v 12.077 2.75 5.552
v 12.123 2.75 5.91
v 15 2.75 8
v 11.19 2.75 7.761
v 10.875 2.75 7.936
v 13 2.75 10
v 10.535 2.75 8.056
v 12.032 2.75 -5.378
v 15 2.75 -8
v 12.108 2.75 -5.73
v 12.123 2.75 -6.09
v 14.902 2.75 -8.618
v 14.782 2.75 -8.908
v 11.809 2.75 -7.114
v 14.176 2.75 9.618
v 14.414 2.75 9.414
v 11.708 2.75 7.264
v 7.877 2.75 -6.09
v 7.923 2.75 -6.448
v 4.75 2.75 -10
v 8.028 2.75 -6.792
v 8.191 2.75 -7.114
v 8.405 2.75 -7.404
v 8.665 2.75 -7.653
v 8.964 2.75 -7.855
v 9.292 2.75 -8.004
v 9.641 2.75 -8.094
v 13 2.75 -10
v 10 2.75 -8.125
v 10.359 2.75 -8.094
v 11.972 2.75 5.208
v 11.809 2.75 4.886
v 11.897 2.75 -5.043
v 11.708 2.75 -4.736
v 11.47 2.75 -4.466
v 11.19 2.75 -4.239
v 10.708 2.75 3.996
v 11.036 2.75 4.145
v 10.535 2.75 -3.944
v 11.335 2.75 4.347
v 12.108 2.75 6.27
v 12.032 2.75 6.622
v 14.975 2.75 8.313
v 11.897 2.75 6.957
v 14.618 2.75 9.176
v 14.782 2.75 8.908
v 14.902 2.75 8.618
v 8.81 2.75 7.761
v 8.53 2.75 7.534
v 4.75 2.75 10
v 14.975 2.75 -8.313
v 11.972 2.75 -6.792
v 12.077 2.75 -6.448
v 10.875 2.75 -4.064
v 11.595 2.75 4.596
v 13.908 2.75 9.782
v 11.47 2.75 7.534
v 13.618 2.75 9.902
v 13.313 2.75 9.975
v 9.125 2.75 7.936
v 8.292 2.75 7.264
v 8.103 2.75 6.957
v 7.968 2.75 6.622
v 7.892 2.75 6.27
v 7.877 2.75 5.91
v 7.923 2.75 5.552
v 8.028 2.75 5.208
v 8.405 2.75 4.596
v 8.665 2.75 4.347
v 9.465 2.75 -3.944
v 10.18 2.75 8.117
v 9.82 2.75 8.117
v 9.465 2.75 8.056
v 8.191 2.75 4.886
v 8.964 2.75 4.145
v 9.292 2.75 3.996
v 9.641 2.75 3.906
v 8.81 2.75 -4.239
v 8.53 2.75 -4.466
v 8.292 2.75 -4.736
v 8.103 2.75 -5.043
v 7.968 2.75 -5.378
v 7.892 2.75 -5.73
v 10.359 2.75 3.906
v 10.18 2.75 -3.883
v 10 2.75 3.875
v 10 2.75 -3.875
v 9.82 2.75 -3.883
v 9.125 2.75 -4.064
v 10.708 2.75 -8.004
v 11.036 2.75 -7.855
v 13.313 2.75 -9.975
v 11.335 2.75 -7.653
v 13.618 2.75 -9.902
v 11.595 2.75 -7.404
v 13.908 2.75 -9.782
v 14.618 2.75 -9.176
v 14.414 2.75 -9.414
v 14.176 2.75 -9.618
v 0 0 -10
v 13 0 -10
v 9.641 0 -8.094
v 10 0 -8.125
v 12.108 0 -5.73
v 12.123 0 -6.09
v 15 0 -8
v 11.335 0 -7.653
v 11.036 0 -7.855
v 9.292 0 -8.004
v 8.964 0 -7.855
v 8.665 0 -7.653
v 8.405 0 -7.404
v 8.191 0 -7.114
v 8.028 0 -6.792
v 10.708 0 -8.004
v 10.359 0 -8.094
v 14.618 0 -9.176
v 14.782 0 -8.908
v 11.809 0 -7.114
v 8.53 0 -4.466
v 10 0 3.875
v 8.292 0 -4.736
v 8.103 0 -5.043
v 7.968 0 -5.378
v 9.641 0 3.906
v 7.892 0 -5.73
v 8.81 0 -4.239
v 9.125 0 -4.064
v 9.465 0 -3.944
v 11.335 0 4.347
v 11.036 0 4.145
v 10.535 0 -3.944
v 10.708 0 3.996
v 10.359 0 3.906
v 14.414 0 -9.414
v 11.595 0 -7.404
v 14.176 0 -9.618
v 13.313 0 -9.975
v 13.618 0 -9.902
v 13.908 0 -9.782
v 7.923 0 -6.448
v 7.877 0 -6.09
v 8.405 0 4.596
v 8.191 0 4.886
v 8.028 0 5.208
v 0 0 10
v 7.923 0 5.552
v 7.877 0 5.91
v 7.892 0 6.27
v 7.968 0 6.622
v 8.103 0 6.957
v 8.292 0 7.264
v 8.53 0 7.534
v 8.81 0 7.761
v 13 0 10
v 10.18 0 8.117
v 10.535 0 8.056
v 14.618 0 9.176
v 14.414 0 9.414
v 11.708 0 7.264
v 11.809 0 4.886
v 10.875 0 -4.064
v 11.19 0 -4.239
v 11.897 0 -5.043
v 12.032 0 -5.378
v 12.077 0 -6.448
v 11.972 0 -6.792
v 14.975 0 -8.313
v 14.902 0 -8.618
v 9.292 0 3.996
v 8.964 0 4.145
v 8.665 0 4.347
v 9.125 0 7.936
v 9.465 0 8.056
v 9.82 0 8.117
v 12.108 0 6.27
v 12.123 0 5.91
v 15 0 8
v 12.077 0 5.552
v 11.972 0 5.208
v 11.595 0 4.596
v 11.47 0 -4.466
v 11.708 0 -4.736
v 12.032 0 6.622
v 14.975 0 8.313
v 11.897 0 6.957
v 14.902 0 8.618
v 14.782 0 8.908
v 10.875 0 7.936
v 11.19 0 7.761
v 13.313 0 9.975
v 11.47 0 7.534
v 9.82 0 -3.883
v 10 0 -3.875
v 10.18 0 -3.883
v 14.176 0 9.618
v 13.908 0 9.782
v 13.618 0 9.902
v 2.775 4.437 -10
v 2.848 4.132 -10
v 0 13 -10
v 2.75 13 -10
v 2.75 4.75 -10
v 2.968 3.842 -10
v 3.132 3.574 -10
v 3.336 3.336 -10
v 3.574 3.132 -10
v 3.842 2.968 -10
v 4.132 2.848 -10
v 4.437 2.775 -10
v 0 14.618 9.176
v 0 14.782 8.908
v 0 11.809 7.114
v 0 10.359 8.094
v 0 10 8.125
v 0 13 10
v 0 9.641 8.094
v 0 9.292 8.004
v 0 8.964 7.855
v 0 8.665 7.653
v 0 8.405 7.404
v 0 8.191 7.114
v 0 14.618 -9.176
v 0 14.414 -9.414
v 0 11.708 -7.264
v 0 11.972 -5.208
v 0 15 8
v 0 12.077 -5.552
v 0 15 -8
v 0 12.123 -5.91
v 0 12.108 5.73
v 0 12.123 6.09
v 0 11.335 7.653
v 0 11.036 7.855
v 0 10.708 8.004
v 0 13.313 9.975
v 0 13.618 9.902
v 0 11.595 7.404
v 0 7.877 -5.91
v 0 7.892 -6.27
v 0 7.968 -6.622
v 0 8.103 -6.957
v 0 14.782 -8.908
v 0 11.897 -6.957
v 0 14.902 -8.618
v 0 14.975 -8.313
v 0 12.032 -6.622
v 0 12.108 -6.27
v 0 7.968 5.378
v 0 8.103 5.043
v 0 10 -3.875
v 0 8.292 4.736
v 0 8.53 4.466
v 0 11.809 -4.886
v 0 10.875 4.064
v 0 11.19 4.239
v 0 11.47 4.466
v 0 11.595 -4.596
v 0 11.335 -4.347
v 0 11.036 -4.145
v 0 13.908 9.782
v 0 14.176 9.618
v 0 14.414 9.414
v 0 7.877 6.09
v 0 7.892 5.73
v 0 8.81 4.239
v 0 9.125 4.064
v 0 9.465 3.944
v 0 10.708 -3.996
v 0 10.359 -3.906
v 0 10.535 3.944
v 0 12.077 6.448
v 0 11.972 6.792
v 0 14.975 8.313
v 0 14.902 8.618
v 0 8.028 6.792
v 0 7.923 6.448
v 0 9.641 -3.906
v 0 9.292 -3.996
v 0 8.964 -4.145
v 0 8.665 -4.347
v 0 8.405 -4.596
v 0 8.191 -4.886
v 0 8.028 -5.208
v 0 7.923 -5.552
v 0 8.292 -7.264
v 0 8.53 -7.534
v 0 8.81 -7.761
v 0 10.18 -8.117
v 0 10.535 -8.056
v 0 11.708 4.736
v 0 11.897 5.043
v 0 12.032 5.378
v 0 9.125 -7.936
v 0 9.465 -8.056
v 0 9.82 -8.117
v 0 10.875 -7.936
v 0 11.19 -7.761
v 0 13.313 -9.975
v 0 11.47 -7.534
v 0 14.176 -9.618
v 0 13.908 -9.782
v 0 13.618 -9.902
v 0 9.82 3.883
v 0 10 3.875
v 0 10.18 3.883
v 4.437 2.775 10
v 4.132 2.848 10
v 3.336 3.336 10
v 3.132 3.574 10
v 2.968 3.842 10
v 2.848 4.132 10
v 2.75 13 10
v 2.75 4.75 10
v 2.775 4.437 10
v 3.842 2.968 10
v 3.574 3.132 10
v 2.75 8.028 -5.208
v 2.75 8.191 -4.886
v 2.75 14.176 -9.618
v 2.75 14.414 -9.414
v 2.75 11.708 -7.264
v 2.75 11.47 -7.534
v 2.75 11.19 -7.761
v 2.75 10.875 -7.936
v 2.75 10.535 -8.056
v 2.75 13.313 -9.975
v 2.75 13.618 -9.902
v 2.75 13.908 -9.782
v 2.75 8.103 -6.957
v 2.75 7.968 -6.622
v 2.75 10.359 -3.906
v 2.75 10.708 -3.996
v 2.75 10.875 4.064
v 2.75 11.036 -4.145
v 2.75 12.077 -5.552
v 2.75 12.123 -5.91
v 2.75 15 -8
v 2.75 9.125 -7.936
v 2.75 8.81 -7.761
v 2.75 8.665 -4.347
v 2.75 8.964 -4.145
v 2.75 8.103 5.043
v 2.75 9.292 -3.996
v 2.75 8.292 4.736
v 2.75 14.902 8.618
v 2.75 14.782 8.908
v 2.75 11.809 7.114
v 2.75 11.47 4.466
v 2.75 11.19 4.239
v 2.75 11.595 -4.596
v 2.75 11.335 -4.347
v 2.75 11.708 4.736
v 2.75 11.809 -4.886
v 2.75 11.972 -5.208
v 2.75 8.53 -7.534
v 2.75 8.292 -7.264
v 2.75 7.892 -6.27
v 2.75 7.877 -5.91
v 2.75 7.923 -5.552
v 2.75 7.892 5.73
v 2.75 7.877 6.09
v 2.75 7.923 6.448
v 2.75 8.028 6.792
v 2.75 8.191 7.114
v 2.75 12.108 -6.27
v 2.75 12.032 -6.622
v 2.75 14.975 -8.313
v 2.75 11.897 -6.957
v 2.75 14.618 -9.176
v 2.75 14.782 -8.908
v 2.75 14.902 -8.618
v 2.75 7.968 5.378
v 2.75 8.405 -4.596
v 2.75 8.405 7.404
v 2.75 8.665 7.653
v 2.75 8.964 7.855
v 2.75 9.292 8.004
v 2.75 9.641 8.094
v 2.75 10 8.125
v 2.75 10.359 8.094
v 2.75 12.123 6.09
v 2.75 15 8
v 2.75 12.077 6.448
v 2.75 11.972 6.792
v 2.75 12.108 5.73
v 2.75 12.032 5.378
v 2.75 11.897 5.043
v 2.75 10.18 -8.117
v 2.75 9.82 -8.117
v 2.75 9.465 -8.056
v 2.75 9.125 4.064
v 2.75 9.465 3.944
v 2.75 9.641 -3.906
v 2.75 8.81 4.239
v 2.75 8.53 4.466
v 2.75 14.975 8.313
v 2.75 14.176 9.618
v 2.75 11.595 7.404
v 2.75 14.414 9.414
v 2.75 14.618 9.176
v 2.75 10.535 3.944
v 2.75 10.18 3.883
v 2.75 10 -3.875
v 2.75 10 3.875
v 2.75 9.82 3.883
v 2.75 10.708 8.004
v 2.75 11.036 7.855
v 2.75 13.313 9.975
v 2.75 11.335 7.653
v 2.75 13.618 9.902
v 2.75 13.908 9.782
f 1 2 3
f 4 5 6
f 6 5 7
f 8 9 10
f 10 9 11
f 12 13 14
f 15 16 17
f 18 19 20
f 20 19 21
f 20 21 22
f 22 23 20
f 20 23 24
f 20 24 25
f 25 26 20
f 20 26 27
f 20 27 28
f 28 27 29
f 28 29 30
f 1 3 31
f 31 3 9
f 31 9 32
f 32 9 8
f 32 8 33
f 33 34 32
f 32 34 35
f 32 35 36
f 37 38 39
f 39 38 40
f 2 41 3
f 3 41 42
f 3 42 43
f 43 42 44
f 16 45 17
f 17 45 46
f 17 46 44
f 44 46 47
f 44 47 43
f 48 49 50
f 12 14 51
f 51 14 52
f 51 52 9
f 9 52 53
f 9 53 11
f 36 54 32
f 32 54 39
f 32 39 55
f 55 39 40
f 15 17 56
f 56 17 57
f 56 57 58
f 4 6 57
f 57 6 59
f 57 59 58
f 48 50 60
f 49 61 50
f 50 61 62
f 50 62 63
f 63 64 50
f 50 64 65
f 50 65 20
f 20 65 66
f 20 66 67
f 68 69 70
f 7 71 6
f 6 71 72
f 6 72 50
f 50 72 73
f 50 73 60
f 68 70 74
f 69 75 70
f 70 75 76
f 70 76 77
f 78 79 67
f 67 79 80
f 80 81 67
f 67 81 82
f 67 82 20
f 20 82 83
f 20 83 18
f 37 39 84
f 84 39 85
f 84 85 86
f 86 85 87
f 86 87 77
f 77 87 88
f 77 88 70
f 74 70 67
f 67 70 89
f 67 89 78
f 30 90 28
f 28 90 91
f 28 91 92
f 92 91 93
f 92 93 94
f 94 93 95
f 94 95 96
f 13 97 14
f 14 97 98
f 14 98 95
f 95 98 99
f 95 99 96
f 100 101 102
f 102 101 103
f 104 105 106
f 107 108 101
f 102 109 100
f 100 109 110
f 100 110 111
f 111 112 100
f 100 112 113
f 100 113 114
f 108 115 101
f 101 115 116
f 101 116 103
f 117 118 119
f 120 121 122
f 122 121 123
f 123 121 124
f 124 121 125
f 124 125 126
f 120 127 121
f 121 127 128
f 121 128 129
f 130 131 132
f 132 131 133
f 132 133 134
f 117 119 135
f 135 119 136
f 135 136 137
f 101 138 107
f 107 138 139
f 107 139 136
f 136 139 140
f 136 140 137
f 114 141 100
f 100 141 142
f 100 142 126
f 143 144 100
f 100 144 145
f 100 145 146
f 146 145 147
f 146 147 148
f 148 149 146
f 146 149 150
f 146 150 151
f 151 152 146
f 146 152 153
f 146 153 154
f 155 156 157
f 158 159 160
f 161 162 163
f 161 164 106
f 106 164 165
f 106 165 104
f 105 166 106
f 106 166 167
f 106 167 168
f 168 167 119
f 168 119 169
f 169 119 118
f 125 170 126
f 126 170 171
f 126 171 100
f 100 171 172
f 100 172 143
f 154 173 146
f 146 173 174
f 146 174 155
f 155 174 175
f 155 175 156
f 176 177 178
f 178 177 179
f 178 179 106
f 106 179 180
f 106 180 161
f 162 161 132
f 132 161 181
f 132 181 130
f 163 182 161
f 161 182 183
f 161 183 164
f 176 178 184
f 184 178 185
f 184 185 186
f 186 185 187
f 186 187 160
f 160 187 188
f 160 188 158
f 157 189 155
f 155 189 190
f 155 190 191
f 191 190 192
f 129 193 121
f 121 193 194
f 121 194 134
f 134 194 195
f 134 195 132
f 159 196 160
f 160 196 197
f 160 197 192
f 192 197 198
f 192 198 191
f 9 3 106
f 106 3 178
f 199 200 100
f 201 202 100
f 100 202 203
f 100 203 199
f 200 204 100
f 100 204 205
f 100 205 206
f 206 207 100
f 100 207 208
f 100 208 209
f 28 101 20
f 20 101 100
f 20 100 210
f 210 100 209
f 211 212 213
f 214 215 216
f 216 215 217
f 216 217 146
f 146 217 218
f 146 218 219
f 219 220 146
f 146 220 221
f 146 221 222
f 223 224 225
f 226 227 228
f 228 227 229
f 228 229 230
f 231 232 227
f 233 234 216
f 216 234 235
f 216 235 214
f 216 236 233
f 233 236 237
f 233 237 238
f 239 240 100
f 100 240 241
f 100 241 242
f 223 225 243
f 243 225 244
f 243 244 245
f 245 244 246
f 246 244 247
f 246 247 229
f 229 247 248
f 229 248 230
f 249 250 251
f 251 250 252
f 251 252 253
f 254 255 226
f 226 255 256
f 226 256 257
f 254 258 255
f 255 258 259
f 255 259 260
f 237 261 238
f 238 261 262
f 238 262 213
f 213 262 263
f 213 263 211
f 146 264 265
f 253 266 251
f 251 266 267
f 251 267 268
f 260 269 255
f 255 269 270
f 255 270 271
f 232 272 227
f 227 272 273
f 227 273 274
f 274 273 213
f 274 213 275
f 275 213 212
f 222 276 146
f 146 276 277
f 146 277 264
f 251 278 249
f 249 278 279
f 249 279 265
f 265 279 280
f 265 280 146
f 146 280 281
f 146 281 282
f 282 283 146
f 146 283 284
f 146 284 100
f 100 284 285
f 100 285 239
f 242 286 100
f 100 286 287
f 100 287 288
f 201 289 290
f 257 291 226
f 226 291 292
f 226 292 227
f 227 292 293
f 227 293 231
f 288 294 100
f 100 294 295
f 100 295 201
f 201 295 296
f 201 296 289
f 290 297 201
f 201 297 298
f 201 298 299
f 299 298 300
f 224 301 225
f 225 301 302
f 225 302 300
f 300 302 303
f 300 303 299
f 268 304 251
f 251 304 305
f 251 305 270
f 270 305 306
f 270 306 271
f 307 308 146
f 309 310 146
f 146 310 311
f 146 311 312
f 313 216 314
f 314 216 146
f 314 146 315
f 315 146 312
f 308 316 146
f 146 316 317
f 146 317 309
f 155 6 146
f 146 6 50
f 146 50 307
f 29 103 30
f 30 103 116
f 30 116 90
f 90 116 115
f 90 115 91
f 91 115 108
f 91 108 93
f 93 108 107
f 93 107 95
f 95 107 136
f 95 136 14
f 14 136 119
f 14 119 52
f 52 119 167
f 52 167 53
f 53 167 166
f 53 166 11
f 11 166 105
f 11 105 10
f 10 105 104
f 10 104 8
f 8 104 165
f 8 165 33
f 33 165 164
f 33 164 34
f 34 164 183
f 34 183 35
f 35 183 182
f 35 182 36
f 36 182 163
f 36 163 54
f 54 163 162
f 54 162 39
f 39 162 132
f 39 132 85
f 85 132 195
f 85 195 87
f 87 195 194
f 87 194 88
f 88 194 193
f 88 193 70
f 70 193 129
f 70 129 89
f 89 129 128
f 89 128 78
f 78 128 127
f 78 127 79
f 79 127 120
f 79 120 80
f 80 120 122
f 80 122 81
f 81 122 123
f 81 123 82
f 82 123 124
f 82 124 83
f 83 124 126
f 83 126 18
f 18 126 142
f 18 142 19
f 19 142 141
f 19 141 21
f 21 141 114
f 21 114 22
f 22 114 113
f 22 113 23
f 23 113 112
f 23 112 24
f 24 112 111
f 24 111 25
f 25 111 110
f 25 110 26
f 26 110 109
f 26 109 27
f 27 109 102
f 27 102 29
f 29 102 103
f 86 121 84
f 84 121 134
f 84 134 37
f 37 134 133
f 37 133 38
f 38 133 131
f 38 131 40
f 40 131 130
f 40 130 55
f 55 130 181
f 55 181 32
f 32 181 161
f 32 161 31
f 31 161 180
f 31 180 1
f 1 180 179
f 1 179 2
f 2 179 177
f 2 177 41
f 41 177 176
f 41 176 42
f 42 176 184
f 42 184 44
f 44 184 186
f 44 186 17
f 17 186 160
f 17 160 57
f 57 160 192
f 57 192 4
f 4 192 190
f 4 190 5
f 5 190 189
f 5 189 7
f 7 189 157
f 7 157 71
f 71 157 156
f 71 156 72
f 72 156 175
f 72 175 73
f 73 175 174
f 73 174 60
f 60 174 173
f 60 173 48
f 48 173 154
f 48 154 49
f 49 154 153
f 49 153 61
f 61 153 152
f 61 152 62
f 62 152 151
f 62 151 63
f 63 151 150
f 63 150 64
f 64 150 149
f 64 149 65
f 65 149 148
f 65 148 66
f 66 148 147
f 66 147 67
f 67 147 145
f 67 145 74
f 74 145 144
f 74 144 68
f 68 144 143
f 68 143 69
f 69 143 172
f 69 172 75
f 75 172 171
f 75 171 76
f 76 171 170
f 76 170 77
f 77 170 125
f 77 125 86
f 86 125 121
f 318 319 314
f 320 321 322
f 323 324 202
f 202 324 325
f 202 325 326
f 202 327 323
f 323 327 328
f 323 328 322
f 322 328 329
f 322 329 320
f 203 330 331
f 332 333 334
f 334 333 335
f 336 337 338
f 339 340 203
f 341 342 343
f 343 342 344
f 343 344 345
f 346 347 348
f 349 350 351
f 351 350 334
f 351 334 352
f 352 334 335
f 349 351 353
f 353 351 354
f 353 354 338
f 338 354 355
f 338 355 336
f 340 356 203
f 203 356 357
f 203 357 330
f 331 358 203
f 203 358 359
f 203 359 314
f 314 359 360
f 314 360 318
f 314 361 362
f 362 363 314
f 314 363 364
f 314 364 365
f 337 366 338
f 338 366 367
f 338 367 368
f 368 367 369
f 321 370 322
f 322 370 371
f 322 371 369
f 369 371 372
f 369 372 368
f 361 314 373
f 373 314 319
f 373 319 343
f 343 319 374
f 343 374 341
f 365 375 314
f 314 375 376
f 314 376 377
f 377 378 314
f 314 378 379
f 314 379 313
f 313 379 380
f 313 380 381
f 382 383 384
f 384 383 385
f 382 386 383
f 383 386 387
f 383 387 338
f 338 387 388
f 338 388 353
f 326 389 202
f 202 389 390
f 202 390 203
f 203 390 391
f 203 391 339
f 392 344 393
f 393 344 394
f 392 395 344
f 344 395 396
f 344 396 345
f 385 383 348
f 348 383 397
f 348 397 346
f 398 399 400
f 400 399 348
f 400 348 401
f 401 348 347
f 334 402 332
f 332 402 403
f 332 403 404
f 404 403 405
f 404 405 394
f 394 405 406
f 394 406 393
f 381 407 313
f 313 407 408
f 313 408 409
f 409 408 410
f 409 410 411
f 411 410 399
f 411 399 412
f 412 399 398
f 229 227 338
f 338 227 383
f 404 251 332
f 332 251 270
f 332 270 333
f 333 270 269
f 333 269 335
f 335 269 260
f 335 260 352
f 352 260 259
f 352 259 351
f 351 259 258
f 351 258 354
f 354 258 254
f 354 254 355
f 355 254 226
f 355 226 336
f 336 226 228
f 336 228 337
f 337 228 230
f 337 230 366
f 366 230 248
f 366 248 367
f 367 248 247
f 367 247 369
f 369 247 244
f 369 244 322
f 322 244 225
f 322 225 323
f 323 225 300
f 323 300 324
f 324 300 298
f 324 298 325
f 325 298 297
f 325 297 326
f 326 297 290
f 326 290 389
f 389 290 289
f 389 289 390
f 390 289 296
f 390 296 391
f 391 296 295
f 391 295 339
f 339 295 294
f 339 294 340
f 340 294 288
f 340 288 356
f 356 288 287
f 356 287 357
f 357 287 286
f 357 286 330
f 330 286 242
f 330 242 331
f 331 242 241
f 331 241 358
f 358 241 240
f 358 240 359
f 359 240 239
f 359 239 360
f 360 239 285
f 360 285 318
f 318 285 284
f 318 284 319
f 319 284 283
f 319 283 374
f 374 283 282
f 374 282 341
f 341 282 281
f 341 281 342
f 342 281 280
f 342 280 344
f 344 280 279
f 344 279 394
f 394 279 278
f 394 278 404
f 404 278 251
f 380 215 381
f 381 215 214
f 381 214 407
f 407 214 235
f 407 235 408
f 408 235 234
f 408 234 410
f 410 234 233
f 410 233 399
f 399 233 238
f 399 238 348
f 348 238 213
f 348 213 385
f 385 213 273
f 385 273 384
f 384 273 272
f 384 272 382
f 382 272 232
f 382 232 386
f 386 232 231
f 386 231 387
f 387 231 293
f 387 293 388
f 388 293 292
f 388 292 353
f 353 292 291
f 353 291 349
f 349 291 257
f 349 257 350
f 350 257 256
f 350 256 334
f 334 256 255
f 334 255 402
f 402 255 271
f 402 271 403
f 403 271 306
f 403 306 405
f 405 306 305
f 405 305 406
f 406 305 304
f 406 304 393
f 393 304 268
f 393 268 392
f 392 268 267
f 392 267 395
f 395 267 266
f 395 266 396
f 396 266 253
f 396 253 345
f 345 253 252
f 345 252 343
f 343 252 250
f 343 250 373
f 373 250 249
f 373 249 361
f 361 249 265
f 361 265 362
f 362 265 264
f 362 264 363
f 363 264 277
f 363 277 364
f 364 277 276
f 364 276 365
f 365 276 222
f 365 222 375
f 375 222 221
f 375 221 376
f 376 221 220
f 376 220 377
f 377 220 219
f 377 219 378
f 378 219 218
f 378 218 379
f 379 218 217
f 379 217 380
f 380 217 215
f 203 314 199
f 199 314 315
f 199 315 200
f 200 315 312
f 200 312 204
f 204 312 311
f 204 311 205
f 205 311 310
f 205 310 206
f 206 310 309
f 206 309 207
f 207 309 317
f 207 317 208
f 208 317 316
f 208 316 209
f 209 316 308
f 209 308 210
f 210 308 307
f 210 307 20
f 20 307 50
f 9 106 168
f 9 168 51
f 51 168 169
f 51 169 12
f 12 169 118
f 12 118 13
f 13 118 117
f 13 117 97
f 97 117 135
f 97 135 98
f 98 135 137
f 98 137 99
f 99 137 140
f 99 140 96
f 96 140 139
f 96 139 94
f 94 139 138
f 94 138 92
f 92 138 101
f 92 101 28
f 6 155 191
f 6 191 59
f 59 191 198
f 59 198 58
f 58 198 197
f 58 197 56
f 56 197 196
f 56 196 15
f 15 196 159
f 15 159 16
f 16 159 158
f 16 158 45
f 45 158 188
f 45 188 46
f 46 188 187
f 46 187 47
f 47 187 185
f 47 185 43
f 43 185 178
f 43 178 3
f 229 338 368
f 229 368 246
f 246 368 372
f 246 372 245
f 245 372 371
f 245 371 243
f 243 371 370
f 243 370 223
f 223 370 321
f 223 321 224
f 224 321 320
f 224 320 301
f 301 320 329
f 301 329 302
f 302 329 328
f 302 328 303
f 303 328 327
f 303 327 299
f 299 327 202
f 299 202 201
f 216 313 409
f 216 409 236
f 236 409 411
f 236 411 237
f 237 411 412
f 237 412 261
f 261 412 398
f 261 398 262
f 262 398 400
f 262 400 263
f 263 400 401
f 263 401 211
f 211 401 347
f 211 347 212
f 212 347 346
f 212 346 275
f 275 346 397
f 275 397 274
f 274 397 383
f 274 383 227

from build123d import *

# Parameters (mm, degrees)
SKETCH3_W           = 15
SKETCH3_H           = 20
SKETCH3_R           = 2.125
BOSS_EXTRUDE3_DEPTH = 2.75
SKETCH5_W           = 20
SKETCH5_H           = 15
SKETCH5_R           = 2.125
BOSS_EXTRUDE5_DEPTH = 2.75
FILLET4_R           = 2


with BuildPart() as part:
    # Sketch3 → Boss-Extrude3 (new body)
    with BuildSketch(Plane(origin=(0, 0, 0), x_dir=(1, 0, 0), z_dir=(0, 1, 0))):
        with Locations((7.5, 0)):
            Rectangle(SKETCH3_W, SKETCH3_H)
        with Locations(Location((10, 6, 0), (0, 0, 270))):
            Circle(SKETCH3_R, mode=Mode.SUBTRACT)
        with Locations(Location((10, -6, 0), (0, 0, 90))):
            Circle(SKETCH3_R, mode=Mode.SUBTRACT)
    extrude(amount=BOSS_EXTRUDE3_DEPTH)

    # Sketch5 → Boss-Extrude5 (add)
    with BuildSketch(Plane.ZY):
        with Locations((0, 7.5)):
            Rectangle(SKETCH5_W, SKETCH5_H)
        with Locations((-6, 10)):
            Circle(SKETCH5_R, mode=Mode.SUBTRACT)
        with Locations(Location((6, 10, 0), (0, 0, 180))):
            Circle(SKETCH5_R, mode=Mode.SUBTRACT)
    extrude(amount=-BOSS_EXTRUDE5_DEPTH)

    # Fillet4
    fillet4_edges = [part.edges().sort_by_distance(p)[0] for p in [
        (1.375, 15, 10),
        (1.375, 15, -10),
        (2.75, 2.75, 0),
        (15, 1.375, 10),
        (15, 1.375, -10),
    ]]
    fillet(fillet4_edges, radius=FILLET4_R)


solid = part.part
